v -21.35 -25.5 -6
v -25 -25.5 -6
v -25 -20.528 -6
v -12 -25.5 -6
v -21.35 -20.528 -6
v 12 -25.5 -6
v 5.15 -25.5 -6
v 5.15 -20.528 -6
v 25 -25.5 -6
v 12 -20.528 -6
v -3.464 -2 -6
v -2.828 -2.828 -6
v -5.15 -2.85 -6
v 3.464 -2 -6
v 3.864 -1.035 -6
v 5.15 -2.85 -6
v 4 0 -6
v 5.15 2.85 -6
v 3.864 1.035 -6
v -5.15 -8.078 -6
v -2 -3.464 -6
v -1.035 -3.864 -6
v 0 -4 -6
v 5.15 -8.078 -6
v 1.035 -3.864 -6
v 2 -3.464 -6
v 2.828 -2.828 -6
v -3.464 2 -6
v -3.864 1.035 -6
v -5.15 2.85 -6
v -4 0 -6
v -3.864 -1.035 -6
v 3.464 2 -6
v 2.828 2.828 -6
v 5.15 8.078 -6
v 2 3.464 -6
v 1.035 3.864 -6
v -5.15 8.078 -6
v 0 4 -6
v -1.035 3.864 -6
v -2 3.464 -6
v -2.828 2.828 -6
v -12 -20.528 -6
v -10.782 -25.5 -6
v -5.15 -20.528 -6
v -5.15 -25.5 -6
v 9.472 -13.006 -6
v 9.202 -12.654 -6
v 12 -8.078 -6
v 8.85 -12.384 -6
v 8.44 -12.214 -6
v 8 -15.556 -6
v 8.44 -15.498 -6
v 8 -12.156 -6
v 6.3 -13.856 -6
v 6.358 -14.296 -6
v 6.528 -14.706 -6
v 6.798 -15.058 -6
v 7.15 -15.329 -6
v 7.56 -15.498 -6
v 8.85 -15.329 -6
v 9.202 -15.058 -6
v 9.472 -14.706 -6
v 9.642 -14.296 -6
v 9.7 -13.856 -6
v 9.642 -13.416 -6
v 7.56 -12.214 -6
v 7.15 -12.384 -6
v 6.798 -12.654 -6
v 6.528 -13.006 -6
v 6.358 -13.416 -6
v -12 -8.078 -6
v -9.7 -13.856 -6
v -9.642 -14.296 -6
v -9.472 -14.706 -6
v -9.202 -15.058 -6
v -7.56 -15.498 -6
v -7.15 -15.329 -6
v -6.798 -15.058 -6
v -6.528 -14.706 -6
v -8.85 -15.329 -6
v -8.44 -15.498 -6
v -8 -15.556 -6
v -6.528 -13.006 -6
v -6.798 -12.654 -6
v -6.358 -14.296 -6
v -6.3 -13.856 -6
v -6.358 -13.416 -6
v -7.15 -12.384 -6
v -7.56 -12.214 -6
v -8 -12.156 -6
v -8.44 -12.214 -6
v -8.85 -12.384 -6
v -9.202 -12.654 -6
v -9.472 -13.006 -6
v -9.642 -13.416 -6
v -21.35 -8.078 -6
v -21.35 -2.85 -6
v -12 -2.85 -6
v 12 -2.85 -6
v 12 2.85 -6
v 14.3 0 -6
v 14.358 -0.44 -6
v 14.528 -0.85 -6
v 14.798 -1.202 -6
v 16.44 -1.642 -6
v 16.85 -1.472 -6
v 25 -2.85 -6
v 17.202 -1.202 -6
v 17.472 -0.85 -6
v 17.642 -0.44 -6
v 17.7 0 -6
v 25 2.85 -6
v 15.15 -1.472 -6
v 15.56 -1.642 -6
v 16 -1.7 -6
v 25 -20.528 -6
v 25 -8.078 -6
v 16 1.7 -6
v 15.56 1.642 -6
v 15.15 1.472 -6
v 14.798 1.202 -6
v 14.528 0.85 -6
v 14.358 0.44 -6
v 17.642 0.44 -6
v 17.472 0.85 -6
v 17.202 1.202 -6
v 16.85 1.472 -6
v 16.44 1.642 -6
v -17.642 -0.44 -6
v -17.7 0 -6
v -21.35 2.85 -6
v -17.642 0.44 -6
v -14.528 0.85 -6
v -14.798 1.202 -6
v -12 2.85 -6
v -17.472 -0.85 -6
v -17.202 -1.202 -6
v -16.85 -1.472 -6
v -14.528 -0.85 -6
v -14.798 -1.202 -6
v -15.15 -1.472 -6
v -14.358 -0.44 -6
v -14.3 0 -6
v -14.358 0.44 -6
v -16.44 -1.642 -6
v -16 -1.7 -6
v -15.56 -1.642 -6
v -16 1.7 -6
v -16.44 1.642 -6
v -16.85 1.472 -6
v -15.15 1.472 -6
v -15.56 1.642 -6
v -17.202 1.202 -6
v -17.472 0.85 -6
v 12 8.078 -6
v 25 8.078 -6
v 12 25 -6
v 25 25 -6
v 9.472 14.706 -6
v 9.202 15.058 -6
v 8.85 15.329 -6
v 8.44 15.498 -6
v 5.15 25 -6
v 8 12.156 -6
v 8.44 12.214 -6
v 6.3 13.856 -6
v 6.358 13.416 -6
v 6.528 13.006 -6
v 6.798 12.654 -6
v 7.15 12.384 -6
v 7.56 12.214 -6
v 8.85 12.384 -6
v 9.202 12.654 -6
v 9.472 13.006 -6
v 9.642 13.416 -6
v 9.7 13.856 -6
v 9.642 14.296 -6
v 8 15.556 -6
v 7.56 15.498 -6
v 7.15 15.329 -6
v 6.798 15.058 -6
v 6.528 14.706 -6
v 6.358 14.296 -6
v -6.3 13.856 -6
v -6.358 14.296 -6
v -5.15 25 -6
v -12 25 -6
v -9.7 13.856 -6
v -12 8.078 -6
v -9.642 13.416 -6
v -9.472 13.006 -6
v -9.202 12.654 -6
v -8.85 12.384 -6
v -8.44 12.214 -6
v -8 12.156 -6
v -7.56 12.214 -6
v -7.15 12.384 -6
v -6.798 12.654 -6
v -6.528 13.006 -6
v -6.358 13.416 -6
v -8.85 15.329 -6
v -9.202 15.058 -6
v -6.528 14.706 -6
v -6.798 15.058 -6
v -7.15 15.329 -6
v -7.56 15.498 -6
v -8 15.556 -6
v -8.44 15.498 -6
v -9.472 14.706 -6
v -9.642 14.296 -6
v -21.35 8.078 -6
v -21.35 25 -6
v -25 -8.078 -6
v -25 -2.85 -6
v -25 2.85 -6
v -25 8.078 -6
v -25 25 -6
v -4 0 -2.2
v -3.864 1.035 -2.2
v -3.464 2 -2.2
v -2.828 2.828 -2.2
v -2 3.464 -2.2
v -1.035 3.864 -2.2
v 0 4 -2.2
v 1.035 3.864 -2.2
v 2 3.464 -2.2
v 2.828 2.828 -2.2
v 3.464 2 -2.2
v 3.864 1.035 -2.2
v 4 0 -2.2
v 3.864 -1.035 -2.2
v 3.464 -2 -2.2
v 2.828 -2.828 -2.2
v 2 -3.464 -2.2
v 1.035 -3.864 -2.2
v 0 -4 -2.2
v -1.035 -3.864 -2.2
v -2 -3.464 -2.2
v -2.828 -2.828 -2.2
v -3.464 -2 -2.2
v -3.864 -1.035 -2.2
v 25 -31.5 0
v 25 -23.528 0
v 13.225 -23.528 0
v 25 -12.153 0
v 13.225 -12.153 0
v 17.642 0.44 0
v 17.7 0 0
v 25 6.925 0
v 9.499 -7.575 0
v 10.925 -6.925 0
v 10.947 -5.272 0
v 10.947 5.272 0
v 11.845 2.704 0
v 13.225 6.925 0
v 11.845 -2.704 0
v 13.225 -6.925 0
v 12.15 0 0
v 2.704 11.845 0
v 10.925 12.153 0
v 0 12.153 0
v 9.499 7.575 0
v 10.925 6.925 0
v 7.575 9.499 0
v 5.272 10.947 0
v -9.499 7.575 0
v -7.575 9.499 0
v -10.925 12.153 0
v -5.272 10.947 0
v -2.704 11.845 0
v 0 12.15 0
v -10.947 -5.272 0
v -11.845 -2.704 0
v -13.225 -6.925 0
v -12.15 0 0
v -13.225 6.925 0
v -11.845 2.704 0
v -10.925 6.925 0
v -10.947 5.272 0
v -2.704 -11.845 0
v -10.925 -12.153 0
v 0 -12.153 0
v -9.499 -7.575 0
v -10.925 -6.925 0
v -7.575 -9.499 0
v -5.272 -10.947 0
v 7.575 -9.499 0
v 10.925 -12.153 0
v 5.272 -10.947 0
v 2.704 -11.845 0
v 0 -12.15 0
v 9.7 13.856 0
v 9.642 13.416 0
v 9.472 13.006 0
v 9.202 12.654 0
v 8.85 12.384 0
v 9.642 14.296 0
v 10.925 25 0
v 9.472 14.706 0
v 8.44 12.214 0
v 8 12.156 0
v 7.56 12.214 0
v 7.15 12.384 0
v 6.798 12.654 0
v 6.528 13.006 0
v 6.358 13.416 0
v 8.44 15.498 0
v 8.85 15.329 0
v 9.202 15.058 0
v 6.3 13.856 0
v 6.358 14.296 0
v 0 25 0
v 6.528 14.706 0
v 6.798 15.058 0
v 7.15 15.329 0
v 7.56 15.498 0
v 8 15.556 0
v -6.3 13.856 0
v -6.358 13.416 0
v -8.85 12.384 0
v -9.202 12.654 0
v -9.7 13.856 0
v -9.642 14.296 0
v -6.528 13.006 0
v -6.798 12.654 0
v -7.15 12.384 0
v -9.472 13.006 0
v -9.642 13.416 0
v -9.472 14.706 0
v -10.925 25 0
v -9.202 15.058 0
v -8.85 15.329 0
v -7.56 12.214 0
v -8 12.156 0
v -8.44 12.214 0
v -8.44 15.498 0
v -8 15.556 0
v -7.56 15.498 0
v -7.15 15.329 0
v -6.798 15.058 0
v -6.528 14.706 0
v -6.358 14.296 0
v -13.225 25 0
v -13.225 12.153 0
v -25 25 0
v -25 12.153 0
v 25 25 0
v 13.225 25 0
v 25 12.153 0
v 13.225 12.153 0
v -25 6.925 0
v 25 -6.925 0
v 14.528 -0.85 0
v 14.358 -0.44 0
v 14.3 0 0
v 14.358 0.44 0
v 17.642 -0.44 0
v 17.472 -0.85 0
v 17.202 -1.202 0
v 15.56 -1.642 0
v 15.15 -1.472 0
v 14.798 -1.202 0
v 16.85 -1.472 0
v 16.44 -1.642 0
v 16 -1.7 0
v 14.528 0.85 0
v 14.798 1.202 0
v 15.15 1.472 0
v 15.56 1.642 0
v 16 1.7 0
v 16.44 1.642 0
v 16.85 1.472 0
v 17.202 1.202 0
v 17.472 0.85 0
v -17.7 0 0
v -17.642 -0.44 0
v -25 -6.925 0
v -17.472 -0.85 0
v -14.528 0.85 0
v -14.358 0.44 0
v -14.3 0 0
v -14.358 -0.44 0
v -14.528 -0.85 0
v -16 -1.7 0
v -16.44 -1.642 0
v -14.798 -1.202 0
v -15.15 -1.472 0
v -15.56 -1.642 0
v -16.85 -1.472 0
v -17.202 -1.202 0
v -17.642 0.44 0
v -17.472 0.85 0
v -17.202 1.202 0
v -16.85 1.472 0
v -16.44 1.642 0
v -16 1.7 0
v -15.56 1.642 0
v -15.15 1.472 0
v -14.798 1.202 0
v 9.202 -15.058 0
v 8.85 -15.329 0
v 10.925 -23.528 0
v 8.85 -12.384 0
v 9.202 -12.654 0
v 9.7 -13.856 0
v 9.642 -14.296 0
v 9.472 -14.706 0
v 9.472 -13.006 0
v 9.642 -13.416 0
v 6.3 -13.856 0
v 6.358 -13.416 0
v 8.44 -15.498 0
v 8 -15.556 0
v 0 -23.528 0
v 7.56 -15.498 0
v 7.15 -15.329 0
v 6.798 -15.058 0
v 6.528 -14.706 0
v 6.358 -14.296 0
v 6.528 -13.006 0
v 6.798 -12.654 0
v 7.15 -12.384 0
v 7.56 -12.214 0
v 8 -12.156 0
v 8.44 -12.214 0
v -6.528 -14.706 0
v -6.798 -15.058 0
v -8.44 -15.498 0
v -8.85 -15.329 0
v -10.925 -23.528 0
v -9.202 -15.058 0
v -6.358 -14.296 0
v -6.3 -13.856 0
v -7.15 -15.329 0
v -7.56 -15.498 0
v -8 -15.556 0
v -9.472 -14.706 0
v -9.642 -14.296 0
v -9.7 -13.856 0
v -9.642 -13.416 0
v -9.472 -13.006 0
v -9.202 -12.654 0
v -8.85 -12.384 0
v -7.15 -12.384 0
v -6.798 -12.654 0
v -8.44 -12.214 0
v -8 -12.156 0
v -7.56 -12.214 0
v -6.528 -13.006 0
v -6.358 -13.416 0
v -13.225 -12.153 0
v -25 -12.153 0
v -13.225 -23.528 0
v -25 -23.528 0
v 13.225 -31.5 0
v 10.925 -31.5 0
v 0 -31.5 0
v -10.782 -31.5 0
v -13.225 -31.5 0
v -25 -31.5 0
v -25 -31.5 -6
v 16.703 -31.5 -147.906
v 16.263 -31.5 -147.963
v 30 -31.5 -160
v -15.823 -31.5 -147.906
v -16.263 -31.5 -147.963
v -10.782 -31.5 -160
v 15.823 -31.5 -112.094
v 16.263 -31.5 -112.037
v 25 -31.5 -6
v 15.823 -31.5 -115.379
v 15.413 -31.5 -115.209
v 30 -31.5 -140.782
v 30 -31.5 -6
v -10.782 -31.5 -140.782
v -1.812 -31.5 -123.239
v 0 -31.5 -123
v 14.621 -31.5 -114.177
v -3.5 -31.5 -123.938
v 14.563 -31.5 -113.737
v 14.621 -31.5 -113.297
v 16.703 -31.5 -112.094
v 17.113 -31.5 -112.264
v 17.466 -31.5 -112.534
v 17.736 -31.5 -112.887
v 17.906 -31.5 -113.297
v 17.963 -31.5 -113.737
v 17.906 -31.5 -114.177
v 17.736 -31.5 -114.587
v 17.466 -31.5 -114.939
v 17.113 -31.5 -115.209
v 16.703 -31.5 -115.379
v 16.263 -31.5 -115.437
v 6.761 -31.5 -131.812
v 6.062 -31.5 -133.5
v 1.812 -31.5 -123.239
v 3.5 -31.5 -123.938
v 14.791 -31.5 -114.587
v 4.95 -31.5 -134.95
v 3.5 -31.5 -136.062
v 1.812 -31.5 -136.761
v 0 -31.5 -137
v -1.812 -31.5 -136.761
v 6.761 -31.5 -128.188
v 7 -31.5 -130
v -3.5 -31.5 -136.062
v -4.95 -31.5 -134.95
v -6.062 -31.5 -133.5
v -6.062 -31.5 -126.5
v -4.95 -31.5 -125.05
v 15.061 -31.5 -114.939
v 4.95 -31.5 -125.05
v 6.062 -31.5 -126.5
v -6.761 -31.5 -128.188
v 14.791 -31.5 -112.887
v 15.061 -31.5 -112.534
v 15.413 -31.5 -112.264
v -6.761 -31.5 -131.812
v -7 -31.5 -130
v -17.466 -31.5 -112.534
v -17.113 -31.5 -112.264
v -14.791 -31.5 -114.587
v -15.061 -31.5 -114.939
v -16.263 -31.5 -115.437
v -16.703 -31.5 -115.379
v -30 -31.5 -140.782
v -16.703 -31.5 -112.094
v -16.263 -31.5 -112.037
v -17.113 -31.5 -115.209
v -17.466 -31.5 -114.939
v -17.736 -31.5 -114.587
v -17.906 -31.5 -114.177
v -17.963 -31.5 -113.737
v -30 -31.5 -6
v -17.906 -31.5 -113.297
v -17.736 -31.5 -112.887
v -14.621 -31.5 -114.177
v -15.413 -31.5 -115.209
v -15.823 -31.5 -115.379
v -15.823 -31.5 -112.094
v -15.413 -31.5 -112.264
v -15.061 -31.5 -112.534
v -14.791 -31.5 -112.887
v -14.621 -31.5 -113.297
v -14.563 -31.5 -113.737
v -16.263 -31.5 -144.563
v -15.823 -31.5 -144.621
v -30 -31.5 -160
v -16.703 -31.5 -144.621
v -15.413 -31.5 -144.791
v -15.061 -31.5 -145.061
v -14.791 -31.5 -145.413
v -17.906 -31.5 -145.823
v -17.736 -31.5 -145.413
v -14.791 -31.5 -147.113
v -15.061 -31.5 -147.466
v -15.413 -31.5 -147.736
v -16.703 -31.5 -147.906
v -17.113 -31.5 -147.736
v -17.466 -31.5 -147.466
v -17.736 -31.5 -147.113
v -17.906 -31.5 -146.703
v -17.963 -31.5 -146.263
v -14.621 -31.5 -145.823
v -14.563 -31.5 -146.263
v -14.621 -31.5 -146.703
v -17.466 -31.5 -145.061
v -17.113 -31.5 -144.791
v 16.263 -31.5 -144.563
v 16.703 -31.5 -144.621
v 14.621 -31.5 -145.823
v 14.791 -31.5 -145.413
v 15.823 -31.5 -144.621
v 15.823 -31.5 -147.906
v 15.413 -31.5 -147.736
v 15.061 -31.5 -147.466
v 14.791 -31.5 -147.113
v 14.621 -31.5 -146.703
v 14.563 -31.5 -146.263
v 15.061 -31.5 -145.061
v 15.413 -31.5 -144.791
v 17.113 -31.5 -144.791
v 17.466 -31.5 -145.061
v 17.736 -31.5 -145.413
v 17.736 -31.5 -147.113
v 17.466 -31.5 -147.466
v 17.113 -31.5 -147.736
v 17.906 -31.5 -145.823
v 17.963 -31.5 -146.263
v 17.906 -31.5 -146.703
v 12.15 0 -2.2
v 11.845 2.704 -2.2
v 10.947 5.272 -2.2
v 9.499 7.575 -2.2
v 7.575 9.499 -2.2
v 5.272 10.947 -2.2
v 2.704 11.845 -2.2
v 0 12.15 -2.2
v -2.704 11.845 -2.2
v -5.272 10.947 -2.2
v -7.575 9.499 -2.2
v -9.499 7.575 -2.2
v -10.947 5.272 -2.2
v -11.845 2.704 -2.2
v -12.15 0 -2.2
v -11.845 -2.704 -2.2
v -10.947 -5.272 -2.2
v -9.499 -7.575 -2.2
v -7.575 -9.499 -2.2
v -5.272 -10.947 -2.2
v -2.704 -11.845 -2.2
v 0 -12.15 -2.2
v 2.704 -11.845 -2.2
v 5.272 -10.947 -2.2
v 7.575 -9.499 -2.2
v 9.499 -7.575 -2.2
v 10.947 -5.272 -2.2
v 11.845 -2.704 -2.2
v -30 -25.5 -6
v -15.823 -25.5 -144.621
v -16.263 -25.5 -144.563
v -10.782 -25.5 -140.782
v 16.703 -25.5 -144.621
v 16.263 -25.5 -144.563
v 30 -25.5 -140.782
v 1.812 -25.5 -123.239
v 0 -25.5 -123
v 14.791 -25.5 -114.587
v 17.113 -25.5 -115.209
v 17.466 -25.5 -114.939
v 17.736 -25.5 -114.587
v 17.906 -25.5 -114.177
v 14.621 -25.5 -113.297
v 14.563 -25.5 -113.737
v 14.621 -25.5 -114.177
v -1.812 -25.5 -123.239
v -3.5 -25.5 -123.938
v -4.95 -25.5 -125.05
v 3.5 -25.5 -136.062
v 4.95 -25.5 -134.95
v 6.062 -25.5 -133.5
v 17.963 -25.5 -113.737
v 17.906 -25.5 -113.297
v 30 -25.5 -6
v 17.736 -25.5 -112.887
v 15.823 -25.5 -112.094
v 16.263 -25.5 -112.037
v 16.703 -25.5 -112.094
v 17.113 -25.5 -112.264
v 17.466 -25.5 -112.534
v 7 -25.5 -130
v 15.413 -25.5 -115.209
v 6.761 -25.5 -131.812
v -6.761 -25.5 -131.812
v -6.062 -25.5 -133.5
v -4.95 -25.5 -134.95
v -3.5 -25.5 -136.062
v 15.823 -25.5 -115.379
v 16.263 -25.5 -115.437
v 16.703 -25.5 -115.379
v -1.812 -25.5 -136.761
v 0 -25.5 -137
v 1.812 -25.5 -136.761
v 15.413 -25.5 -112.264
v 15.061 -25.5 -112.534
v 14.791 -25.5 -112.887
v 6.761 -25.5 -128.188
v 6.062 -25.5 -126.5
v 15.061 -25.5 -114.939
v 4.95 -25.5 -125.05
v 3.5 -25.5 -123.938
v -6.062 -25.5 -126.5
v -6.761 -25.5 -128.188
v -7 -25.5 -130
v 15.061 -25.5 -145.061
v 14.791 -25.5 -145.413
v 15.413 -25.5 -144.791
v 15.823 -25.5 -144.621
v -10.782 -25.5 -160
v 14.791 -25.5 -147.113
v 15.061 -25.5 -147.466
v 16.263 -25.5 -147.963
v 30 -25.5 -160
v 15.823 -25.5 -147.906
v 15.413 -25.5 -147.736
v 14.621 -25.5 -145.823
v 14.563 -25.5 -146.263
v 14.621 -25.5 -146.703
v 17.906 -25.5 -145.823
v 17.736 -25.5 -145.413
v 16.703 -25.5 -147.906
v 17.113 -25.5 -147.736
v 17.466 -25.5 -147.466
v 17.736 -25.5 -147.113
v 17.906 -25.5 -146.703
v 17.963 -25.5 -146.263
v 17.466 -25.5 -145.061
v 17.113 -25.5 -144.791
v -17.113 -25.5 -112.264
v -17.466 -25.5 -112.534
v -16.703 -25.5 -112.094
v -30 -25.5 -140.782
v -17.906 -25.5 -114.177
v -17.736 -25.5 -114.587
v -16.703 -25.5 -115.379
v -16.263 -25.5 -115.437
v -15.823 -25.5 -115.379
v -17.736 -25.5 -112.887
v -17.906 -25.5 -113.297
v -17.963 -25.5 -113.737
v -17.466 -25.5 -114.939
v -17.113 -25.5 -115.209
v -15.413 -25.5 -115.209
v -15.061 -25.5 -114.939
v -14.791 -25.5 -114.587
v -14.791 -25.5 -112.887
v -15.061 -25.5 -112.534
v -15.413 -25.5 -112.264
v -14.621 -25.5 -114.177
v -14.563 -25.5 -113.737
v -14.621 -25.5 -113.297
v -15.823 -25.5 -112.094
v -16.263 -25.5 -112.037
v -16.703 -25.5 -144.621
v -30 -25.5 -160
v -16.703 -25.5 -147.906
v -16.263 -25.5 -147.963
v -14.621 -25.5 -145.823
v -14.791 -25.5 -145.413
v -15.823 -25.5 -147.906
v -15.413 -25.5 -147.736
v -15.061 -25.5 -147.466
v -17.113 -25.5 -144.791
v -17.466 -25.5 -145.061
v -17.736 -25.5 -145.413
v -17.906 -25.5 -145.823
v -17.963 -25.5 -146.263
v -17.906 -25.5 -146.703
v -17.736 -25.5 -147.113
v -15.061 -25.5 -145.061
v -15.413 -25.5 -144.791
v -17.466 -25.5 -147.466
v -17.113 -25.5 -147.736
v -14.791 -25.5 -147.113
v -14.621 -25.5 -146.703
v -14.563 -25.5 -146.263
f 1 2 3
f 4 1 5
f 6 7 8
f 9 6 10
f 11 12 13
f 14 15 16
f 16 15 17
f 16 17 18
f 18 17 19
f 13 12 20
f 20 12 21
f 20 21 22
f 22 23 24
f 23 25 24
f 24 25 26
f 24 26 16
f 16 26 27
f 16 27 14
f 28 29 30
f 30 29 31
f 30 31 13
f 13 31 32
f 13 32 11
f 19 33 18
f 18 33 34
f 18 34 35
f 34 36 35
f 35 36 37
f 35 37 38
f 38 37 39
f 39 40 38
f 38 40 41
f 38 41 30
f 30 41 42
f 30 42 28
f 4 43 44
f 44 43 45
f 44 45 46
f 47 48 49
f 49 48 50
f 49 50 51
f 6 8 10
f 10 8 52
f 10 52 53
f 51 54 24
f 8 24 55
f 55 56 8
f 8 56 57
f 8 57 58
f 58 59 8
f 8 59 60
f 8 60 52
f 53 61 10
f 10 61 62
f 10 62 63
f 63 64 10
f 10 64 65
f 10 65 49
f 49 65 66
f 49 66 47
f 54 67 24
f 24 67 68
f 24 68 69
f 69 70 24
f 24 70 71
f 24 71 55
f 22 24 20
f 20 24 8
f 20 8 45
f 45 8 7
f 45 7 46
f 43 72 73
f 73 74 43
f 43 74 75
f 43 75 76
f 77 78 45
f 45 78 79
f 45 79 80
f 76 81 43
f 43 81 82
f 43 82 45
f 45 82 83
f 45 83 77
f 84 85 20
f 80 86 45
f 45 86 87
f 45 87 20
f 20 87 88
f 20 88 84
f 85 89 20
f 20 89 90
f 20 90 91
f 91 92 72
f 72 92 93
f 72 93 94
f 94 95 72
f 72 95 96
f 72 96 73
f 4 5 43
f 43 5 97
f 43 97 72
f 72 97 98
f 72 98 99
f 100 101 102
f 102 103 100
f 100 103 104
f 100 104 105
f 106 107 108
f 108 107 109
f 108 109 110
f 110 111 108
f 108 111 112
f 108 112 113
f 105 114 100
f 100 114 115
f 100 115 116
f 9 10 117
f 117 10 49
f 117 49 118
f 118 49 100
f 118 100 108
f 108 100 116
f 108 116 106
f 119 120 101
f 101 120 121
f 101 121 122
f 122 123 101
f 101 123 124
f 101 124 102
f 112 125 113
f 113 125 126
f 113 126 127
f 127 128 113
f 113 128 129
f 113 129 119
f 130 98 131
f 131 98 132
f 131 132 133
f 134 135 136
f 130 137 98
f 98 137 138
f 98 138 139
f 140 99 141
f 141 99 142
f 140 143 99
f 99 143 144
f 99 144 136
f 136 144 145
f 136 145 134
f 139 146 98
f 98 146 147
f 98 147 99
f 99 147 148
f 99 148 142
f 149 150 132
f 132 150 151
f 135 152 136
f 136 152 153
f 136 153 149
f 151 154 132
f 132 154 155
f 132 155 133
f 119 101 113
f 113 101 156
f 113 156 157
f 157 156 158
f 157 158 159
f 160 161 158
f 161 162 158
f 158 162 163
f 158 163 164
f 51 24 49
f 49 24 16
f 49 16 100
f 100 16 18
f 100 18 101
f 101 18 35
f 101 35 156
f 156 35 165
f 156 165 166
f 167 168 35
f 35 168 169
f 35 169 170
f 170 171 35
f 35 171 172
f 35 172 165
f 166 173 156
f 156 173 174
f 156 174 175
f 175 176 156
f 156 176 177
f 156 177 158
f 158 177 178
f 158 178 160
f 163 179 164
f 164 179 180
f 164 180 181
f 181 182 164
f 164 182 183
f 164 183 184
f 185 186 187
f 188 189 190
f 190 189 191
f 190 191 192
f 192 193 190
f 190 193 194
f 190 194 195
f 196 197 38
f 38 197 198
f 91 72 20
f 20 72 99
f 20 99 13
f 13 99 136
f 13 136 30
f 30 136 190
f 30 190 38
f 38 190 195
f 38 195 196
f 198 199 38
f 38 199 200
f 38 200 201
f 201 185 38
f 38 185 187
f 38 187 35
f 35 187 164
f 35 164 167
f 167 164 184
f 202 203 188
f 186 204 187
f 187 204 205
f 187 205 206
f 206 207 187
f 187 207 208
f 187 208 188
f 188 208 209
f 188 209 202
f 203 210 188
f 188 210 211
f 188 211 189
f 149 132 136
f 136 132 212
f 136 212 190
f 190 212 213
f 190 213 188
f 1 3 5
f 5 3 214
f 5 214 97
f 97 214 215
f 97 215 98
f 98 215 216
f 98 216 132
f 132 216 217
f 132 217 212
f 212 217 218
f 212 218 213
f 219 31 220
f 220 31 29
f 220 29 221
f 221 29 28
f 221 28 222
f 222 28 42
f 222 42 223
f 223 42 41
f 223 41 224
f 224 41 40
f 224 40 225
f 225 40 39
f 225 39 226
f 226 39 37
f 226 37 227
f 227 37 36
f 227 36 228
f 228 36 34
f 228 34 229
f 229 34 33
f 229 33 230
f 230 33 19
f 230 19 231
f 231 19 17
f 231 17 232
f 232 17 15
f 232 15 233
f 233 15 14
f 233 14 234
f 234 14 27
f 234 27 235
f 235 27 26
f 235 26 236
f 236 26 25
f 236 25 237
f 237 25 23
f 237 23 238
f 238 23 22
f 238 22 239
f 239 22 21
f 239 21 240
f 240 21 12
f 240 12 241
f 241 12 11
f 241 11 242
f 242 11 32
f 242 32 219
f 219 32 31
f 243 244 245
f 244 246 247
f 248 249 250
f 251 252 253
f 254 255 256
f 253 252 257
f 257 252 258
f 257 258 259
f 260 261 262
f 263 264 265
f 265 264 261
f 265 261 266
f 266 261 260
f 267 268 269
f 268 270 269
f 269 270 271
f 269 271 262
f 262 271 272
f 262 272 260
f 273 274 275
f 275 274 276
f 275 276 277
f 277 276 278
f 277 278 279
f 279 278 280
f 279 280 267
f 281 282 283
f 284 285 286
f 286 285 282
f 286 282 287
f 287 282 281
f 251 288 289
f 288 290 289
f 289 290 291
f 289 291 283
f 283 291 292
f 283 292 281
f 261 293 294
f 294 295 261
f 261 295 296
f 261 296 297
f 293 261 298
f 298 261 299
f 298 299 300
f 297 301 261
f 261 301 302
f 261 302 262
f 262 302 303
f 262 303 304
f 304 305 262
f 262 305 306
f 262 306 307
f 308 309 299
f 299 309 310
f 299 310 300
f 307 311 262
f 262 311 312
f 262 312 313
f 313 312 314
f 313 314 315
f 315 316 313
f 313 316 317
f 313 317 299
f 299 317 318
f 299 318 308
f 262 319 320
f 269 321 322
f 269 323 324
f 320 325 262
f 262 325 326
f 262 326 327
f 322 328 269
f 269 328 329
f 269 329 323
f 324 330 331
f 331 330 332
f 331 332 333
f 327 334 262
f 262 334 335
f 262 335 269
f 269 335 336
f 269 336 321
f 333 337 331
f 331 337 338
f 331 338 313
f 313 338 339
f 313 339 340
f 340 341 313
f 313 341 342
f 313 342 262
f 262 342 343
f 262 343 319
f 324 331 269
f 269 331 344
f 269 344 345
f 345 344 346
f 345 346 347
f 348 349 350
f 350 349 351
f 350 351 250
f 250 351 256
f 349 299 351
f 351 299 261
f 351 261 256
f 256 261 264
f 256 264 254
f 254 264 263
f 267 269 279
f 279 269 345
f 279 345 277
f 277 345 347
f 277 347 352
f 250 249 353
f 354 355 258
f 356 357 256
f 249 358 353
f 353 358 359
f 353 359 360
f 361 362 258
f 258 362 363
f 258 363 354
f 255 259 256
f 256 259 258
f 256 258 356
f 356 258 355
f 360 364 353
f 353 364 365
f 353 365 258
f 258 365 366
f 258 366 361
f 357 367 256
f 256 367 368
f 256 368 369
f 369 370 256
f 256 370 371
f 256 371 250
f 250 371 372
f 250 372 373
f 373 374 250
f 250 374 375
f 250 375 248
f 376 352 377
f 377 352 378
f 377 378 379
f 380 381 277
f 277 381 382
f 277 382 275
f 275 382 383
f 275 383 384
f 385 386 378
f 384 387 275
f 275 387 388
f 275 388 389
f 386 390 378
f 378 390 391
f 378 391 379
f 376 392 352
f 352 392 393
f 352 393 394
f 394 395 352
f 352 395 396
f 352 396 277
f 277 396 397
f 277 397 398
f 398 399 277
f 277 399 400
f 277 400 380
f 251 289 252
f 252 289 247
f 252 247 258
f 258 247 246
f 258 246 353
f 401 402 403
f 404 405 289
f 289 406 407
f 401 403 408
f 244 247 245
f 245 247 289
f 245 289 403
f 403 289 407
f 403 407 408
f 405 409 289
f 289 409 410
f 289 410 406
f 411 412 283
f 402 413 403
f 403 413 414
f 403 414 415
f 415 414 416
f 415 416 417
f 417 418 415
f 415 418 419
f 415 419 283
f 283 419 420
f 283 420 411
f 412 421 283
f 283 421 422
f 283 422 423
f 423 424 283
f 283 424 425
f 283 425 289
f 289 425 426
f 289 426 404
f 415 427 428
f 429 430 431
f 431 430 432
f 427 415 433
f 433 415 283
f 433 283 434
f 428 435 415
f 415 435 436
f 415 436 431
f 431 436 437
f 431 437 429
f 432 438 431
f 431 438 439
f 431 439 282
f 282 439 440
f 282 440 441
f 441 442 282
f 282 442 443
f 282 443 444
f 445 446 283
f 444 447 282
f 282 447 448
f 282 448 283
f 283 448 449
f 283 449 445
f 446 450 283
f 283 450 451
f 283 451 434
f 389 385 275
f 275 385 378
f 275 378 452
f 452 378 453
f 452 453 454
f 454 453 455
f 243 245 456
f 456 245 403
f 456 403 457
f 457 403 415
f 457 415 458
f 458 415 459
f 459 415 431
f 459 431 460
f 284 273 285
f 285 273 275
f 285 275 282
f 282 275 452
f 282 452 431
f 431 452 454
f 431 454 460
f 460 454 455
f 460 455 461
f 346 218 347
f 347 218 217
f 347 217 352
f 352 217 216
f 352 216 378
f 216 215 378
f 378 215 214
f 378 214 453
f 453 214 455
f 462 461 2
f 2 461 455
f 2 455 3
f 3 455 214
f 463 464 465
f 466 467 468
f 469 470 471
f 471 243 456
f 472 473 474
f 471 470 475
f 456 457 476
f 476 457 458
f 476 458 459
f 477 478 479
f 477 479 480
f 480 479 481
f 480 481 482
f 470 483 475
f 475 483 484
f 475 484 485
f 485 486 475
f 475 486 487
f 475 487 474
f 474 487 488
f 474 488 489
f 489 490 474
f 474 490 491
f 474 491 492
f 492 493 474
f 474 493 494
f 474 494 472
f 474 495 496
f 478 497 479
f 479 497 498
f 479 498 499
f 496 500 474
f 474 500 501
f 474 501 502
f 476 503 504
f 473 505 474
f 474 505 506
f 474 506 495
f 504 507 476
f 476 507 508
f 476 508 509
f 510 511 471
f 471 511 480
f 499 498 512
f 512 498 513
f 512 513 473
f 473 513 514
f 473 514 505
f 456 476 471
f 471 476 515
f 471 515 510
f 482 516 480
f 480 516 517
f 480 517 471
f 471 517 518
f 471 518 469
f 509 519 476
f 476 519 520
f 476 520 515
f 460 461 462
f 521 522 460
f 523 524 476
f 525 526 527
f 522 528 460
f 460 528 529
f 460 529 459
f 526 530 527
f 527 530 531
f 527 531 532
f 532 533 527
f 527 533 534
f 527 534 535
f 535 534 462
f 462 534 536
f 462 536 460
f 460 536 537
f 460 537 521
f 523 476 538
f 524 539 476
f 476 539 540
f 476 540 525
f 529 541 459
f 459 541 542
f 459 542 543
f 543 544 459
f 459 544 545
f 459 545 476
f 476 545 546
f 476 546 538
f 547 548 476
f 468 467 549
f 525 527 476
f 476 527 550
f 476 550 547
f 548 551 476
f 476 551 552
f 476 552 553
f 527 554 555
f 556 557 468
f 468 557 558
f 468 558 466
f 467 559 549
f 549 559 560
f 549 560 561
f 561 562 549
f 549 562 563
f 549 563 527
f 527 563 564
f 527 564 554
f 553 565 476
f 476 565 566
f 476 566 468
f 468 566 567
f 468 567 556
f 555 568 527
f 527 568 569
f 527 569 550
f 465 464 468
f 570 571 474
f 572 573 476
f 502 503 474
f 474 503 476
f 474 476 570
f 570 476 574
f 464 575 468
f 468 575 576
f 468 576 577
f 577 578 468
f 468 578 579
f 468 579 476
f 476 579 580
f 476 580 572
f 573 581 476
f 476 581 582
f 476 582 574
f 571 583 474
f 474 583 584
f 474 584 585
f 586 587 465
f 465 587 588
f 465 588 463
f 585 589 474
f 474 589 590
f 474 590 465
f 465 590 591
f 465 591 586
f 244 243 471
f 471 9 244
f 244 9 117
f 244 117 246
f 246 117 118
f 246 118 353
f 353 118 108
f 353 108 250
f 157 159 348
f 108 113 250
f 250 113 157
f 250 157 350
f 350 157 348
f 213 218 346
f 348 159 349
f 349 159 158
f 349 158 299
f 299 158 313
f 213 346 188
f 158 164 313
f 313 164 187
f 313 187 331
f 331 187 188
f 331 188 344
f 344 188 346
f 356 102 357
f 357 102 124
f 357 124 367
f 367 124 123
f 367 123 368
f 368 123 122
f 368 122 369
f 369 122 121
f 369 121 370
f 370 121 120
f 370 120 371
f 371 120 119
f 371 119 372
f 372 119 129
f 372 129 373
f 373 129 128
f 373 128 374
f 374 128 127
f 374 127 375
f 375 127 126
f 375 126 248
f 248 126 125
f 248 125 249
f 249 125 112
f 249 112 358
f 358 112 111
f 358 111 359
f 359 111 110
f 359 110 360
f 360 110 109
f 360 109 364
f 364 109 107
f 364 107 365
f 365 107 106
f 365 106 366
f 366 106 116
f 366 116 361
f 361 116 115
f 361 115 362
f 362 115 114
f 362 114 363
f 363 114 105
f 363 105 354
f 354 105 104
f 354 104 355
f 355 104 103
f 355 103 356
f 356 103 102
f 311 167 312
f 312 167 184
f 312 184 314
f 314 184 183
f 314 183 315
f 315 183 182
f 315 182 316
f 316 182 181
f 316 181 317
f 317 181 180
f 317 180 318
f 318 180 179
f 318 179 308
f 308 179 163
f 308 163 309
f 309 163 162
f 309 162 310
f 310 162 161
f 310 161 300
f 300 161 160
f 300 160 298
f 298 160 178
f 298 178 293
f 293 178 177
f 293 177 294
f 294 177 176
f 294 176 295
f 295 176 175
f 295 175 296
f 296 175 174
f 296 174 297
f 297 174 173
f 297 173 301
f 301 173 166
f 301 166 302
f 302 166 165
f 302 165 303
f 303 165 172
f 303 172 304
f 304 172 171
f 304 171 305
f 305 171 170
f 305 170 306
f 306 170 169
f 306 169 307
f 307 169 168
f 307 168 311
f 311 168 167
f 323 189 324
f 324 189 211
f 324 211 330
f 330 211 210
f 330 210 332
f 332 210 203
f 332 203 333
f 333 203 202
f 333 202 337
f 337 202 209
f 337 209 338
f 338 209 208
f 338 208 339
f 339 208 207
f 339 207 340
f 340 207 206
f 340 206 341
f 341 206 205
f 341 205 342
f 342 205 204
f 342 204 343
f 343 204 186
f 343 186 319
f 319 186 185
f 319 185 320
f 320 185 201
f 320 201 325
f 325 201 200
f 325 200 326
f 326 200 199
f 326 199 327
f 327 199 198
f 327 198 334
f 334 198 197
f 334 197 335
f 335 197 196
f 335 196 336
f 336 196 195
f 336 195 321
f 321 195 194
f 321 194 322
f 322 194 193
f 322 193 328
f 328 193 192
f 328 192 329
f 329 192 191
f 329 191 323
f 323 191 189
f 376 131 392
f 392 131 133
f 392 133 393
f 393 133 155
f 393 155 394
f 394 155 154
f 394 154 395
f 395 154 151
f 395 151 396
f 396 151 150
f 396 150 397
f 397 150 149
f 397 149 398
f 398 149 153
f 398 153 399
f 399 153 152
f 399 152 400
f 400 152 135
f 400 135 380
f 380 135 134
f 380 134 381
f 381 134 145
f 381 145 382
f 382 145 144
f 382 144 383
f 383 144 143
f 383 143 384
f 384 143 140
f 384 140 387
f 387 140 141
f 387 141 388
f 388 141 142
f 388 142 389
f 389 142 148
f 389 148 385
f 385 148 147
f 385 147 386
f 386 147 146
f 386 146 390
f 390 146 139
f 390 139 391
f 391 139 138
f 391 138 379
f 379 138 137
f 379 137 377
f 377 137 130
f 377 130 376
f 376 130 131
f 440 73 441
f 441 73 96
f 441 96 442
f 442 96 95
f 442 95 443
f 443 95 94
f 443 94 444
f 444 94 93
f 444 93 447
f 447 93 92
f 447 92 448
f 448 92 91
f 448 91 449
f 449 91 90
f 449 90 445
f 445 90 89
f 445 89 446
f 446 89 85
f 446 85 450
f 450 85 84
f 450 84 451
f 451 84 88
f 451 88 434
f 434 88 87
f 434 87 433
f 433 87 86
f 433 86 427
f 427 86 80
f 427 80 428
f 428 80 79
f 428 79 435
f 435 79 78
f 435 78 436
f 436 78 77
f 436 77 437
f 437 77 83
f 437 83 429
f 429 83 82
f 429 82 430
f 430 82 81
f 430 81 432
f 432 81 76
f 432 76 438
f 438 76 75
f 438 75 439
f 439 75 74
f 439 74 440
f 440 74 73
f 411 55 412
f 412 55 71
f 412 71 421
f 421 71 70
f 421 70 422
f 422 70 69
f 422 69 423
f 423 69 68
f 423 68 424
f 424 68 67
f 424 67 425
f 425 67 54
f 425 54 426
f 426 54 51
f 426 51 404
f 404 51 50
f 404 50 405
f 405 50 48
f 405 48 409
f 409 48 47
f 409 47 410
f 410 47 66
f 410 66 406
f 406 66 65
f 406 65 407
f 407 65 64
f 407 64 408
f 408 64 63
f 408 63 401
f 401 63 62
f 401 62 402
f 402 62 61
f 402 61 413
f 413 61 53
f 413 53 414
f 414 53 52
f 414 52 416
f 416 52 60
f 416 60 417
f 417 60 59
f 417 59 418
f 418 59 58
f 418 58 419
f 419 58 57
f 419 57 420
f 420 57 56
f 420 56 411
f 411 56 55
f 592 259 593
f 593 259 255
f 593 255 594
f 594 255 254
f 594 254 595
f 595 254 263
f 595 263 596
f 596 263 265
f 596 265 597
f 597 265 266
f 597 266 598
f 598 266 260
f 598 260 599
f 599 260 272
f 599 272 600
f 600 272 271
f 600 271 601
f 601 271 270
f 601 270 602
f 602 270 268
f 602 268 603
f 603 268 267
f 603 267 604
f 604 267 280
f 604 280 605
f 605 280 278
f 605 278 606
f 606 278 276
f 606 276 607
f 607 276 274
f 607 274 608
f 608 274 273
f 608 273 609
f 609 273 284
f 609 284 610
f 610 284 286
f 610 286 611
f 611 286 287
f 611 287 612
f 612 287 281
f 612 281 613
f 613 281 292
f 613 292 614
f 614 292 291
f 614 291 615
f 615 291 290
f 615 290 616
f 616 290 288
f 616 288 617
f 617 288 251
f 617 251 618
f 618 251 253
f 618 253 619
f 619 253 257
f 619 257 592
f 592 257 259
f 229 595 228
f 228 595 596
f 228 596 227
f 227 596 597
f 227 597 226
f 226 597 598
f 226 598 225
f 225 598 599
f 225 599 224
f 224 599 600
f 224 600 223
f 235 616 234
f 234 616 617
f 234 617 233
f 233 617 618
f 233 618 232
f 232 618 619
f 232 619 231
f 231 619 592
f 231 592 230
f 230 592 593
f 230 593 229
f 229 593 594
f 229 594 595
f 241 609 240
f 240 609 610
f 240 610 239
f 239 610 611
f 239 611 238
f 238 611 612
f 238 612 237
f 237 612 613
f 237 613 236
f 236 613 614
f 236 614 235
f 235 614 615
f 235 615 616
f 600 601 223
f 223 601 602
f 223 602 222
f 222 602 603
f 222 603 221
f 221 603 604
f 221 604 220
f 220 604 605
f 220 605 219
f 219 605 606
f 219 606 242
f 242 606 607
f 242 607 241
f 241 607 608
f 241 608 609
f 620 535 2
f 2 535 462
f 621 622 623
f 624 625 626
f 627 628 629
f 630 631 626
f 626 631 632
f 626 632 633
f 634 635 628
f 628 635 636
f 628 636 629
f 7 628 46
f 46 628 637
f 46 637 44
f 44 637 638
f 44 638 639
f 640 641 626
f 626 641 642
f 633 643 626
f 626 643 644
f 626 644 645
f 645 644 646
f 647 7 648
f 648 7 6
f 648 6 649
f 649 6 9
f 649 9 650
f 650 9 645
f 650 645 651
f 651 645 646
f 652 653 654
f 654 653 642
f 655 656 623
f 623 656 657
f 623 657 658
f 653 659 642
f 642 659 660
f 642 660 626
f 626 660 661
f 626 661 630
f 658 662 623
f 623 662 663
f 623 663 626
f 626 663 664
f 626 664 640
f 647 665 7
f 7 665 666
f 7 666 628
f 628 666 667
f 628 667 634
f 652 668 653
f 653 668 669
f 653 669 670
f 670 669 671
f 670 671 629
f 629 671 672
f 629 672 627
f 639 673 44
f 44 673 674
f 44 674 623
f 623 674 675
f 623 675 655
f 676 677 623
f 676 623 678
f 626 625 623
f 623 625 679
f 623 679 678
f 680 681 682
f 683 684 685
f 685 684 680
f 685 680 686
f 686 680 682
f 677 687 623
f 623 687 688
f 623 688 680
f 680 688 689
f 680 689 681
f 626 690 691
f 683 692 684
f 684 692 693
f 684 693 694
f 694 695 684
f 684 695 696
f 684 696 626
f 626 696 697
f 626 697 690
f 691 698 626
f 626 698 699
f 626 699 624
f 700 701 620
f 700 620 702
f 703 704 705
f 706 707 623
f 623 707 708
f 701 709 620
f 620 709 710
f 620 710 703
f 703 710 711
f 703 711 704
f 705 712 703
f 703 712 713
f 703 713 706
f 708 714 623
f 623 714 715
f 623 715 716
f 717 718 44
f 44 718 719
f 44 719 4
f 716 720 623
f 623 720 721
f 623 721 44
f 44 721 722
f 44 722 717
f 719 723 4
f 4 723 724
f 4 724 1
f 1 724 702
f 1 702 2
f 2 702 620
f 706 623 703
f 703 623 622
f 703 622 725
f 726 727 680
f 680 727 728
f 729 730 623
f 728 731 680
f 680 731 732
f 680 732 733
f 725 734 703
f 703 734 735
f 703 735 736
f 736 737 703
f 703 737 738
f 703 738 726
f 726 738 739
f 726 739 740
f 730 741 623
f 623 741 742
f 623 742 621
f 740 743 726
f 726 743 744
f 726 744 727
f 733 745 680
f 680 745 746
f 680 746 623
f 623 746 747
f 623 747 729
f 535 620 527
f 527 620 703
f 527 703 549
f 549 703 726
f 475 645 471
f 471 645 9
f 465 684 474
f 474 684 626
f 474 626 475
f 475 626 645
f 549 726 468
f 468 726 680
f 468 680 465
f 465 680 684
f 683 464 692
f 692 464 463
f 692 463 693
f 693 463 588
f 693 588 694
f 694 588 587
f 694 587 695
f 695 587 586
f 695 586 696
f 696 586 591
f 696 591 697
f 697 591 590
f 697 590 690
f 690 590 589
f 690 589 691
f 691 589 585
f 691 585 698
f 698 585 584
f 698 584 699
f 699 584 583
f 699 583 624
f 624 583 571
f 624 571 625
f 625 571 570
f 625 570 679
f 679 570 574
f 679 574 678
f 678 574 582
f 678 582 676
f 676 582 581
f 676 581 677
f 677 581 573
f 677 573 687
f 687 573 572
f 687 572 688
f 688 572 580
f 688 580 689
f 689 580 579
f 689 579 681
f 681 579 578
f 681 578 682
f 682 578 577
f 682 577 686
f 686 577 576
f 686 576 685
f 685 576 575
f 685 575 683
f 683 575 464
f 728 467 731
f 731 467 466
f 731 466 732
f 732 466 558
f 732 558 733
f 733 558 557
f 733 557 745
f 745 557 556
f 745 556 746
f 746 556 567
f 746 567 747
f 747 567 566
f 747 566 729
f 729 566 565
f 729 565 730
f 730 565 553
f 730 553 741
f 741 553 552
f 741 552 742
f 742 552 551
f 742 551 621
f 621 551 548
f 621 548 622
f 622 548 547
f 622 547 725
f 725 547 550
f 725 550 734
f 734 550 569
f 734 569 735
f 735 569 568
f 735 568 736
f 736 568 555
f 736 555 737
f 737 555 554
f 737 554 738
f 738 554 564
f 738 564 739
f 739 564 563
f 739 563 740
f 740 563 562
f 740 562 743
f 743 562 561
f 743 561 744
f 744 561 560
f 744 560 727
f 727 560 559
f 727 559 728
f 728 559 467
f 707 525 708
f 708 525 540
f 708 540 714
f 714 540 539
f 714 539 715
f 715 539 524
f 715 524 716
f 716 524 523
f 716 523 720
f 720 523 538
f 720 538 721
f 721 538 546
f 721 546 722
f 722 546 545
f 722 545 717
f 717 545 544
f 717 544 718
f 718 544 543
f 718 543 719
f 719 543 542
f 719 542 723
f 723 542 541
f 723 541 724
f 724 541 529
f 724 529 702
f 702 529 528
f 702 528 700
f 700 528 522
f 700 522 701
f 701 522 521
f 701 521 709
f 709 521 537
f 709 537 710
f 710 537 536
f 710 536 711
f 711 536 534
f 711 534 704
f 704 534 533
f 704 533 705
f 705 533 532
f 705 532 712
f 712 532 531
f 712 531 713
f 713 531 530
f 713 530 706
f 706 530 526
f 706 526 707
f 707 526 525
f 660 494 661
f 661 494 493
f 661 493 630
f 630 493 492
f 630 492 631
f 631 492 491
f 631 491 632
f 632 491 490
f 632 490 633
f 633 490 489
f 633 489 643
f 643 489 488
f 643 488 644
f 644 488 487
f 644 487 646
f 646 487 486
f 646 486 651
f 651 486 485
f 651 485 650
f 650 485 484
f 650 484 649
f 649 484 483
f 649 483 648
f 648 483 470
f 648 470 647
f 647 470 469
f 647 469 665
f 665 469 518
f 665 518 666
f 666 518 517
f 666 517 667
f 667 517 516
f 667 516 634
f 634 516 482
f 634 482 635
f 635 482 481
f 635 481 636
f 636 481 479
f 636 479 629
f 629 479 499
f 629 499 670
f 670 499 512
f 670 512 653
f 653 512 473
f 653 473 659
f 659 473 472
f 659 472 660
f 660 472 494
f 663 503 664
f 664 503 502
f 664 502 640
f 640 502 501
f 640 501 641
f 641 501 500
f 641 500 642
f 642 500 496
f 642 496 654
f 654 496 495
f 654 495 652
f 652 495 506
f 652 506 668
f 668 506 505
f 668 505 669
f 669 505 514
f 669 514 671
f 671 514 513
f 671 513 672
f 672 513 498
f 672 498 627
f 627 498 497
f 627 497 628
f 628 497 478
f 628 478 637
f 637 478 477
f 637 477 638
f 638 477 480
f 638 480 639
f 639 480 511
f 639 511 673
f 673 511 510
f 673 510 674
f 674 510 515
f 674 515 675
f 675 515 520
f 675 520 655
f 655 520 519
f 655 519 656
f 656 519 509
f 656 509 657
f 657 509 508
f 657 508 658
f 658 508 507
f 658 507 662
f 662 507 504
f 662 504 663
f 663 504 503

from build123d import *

# Parameters (mm, degrees)
SK_YAW_PLATE_W         = 50
SK_YAW_PLATE_H         = 56.5
SK_YAW_PLATE_R         = 1.7
SK_YAW_PLATE_R_2       = 4
YAW_PLATE_DEPTH        = 6
SK_YAW_PILOT_RECESS_R  = 12.15
YAW_PILOT_RECESS_DEPTH = 2.2
SK_ELBOW_PLATE_W       = 60
SK_ELBOW_PLATE_H       = 154
SK_ELBOW_PLATE_R       = 1.7
SK_ELBOW_PLATE_R_2     = 7
ELBOW_PLATE_DEPTH      = 6


with BuildPart() as part:
    # SK_Yaw_Plate → Yaw_Plate (new body)
    with BuildSketch(Plane.XY.offset(-6)):
        with Locations((0, -3.25)):
            Rectangle(SK_YAW_PLATE_W, SK_YAW_PLATE_H)
        with Locations((16, 0)):
            Circle(SK_YAW_PLATE_R, mode=Mode.SUBTRACT)
        with Locations((8, 13.856406461)):
            Circle(SK_YAW_PLATE_R, mode=Mode.SUBTRACT)
        with Locations((-8, 13.856406461)):
            Circle(SK_YAW_PLATE_R, mode=Mode.SUBTRACT)
        with Locations((-16, 0)):
            Circle(SK_YAW_PLATE_R, mode=Mode.SUBTRACT)
        with Locations((-8, -13.856406461)):
            Circle(SK_YAW_PLATE_R, mode=Mode.SUBTRACT)
        with Locations((8, -13.856406461)):
            Circle(SK_YAW_PLATE_R, mode=Mode.SUBTRACT)
        Circle(SK_YAW_PLATE_R_2, mode=Mode.SUBTRACT)
    extrude(amount=YAW_PLATE_DEPTH)

    # SK_Yaw_Pilot_Recess → Yaw_Pilot_Recess (cut)
    with BuildSketch(Plane.XY):
        Circle(SK_YAW_PILOT_RECESS_R)
    extrude(amount=-YAW_PILOT_RECESS_DEPTH, mode=Mode.SUBTRACT)

    # SK_Elbow_Plate → Elbow_Plate (add)
    with BuildSketch(Plane(origin=(0, -31.5, 0), x_dir=(1, 0, 0), z_dir=(0, 1, 0))):
        with Locations((0, 83)):
            Rectangle(SK_ELBOW_PLATE_W, SK_ELBOW_PLATE_H)
        with Locations(Location((16.263455967, 146.263455967, 0), (0, 0, 270))):
            Circle(SK_ELBOW_PLATE_R, mode=Mode.SUBTRACT)
        with Locations(Location((-16.263455967, 146.263455967, 0), (0, 0, 270))):
            Circle(SK_ELBOW_PLATE_R, mode=Mode.SUBTRACT)
        with Locations(Location((-16.263455967, 113.736544033, 0), (0, 0, 270))):
            Circle(SK_ELBOW_PLATE_R, mode=Mode.SUBTRACT)
        with Locations(Location((16.263455967, 113.736544033, 0), (0, 0, 270))):
            Circle(SK_ELBOW_PLATE_R, mode=Mode.SUBTRACT)
        with Locations(Location((0, 130, 0), (0, 0, 270))):
            Circle(SK_ELBOW_PLATE_R_2, mode=Mode.SUBTRACT)
    extrude(amount=ELBOW_PLATE_DEPTH)


solid = part.part
